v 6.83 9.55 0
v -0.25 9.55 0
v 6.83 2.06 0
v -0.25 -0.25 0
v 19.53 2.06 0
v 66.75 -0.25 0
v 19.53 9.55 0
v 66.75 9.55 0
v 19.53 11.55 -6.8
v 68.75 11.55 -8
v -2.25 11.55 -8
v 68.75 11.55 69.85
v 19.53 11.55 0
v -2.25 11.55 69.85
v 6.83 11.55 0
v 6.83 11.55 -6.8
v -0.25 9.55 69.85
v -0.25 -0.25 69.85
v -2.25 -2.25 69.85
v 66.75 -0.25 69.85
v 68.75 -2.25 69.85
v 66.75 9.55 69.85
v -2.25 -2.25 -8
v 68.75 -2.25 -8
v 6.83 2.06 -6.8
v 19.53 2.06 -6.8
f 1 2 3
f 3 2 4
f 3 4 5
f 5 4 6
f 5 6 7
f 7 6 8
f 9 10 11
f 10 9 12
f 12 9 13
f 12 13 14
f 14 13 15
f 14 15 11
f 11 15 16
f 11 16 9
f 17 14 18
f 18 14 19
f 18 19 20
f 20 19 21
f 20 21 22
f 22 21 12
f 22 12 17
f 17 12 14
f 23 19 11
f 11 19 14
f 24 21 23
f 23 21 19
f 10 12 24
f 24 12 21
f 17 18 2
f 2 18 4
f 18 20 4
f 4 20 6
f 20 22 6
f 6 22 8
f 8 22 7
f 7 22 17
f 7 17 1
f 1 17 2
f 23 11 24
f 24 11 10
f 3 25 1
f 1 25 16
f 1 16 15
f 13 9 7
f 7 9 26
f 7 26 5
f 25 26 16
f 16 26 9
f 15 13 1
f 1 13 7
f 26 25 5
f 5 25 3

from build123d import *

# Parameters (mm, degrees)
SKETCH1_W                = 71
SKETCH1_H                = 13.8
SKETCH1_W_2              = 67
SKETCH1_H_2              = 9.8
EXTRUDE_THIN1_DEPTH      = 69.85
BOSS_EXTRUDE2_DEPTH      = 11.55
BOSS_EXTRUDE2_DEPTH_BACK = 2.25
SKETCH5_W                = 71
SKETCH5_H                = 8
SKETCH6_W                = 12.7
SKETCH6_H                = 9.856323991
CUT_EXTRUDE1_DEPTH       = 6.8


with BuildPart() as part:
    # Sketch1 → Extrude-Thin1 (new body)
    with BuildSketch(Plane.XY):
        with Locations((33.25, 4.65)):
            Rectangle(SKETCH1_W, SKETCH1_H)
        with Locations((33.25, 4.65)):
            Rectangle(SKETCH1_W_2, SKETCH1_H_2, mode=Mode.SUBTRACT)
    extrude(amount=EXTRUDE_THIN1_DEPTH)

    # Sketch5 → Boss-Extrude2 (add, two sides: drawn at the far end of the back side and taken through both)
    with BuildSketch(Plane(origin=(0, 0, 0), x_dir=(1, 0, 0), z_dir=(0, 1, 0)).offset(-BOSS_EXTRUDE2_DEPTH_BACK)):
        with Locations((33.25, 4)):
            Rectangle(SKETCH5_W, SKETCH5_H)
    extrude(amount=BOSS_EXTRUDE2_DEPTH + BOSS_EXTRUDE2_DEPTH_BACK)

    # Sketch6 → Cut-Extrude1 (cut)
    with BuildSketch(Plane.XY):
        with Locations((13.18, 6.988161996)):
            Rectangle(SKETCH6_W, SKETCH6_H)
    extrude(amount=-CUT_EXTRUDE1_DEPTH, mode=Mode.SUBTRACT)


solid = part.part
